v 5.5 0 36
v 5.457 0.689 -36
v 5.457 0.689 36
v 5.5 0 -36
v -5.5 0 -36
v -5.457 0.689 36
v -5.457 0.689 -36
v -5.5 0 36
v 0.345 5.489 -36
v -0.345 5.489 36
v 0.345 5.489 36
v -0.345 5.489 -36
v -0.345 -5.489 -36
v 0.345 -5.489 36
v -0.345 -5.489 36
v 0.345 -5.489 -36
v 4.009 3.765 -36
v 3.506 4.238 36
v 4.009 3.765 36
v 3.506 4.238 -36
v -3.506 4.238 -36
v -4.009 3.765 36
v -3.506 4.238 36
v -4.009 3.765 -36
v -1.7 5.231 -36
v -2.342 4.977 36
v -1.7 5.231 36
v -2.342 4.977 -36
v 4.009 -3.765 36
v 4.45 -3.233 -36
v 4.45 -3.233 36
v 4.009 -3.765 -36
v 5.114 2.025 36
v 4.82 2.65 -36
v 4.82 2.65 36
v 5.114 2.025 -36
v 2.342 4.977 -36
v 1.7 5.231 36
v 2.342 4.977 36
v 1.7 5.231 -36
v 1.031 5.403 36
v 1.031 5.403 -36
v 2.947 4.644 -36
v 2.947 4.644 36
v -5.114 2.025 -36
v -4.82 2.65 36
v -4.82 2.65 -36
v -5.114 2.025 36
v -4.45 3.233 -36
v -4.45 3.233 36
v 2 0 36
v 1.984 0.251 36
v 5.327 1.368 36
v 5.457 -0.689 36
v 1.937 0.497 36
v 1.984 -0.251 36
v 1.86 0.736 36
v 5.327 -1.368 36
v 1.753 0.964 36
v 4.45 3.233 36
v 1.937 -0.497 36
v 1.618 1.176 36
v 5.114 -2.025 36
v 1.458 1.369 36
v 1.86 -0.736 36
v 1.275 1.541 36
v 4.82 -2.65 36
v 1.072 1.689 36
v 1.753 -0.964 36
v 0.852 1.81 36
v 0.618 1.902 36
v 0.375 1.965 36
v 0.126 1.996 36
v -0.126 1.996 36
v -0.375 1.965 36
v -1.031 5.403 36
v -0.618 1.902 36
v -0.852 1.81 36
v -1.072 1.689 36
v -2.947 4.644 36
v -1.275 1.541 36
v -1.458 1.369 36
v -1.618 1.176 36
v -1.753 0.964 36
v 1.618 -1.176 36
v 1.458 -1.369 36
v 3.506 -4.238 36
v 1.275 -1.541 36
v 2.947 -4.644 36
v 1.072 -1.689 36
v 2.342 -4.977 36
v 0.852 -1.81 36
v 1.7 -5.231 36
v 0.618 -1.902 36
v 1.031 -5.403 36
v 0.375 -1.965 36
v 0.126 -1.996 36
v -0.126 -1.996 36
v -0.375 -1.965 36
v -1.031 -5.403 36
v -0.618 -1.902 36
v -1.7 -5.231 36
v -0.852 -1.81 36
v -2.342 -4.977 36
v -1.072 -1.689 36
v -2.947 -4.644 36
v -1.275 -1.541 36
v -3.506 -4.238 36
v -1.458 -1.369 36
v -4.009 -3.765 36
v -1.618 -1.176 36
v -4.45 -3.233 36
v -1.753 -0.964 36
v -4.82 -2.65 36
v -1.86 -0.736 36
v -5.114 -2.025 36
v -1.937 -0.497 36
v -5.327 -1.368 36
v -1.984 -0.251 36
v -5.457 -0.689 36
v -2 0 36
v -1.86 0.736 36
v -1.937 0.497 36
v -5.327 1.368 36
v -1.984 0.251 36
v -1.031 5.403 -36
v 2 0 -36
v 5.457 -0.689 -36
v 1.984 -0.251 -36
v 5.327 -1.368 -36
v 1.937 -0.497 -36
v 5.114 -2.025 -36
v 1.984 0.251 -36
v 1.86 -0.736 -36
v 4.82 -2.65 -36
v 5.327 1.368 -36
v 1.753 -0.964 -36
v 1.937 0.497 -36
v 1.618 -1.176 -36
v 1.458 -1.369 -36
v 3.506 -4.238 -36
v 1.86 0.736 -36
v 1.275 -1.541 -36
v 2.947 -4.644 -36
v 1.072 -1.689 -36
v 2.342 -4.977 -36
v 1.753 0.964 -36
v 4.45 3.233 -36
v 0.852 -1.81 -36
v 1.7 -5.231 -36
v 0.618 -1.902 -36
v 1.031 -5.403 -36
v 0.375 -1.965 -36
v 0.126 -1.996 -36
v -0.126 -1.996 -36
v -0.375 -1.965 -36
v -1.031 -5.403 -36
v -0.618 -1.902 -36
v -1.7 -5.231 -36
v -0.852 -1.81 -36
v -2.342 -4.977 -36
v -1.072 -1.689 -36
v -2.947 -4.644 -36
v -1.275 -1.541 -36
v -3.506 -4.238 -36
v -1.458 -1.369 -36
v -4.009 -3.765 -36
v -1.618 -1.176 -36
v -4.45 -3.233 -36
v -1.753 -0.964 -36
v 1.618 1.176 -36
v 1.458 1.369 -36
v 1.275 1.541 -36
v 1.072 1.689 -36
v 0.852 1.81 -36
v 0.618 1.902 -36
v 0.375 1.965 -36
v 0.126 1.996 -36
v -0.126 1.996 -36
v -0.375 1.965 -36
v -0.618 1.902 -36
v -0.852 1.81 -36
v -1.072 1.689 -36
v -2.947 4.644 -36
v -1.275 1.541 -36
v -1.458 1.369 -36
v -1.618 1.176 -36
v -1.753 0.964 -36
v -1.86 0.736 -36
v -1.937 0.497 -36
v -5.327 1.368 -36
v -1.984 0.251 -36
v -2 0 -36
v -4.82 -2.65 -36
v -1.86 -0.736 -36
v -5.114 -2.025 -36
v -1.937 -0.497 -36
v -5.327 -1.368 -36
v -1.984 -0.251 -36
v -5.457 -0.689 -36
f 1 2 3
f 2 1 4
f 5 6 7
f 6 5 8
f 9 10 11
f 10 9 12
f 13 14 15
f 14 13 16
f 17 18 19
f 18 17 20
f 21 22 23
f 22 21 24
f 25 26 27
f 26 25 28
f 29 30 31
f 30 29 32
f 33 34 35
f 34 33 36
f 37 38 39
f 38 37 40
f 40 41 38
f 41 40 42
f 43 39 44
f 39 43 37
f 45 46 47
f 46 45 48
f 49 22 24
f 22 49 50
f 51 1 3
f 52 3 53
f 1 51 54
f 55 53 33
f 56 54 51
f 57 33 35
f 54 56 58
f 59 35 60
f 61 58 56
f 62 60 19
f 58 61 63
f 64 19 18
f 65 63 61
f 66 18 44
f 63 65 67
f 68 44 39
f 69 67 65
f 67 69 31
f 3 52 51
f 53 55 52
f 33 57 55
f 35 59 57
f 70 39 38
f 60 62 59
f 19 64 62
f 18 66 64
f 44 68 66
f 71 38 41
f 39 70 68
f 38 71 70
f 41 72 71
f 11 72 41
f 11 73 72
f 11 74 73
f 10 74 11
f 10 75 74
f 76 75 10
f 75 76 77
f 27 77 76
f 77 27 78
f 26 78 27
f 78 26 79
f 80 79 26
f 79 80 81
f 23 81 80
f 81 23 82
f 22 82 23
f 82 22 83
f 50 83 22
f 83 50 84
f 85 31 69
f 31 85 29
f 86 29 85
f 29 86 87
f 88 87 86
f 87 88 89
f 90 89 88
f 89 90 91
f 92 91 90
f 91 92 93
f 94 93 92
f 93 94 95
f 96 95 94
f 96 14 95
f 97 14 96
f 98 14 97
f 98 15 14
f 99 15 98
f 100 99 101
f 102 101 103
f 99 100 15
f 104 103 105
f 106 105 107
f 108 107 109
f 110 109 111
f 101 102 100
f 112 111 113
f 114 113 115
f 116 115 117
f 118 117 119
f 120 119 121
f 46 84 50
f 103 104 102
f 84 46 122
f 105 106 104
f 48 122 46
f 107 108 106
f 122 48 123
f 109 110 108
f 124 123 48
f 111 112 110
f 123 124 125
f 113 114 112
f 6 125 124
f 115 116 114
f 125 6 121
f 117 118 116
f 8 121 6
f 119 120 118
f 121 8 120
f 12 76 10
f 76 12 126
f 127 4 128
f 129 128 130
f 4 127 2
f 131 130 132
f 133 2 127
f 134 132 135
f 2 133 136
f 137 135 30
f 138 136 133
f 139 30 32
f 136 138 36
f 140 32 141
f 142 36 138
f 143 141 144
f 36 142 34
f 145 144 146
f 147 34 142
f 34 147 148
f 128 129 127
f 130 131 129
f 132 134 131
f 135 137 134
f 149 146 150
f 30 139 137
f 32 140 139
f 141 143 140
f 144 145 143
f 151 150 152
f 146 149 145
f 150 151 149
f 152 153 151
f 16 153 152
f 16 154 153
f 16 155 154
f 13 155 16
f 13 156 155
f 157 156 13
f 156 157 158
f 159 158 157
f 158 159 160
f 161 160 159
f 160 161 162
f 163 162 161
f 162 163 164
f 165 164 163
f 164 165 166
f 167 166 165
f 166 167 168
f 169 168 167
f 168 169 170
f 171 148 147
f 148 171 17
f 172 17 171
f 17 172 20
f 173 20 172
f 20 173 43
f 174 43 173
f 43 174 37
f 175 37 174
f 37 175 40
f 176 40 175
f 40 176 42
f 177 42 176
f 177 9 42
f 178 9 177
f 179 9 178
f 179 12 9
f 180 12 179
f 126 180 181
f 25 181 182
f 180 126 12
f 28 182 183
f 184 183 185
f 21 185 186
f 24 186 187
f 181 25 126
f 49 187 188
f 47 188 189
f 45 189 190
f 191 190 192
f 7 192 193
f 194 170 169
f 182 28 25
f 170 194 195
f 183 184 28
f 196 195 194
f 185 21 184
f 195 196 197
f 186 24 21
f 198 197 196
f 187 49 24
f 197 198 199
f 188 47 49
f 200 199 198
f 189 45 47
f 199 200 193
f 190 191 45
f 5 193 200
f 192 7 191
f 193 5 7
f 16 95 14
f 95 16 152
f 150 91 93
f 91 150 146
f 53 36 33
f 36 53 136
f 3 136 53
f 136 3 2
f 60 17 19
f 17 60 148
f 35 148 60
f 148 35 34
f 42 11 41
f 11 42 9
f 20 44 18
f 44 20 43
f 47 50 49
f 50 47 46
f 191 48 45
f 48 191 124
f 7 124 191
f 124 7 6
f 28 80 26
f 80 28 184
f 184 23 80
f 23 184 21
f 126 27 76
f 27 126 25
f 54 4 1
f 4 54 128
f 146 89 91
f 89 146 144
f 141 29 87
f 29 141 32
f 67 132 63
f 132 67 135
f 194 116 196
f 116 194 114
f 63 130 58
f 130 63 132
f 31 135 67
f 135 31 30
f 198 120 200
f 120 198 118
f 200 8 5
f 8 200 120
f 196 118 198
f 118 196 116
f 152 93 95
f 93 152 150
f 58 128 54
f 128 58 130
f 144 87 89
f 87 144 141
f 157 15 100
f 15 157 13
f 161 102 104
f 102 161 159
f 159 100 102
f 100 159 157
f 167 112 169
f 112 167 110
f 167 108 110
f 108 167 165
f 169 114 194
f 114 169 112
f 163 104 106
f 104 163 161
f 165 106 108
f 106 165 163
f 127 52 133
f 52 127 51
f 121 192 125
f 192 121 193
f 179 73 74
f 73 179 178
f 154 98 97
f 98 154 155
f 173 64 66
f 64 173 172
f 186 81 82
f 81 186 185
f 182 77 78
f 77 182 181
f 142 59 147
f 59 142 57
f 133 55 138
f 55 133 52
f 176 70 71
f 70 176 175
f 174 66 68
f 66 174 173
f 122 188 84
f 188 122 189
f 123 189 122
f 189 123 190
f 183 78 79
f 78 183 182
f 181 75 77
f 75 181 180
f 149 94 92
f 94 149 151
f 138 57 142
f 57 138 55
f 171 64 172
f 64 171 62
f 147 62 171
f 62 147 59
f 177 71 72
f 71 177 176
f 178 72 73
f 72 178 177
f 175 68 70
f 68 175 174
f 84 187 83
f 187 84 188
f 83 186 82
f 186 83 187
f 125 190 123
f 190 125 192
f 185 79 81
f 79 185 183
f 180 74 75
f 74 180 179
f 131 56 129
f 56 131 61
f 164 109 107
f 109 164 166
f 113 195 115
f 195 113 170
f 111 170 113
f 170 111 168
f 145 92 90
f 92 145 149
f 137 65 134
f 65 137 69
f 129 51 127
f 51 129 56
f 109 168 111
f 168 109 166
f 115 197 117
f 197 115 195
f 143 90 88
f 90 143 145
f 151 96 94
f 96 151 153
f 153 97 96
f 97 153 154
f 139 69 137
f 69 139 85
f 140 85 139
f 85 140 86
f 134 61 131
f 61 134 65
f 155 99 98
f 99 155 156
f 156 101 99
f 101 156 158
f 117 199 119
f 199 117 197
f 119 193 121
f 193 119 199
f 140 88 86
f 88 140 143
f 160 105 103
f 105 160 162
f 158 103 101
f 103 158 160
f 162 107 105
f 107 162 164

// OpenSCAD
$fn = 50;


difference() {
	union() {
		translate(v = [0, 0, -36.0000000000]) {
			cylinder(h = 72, r = 5.5000000000);
		}
	}
	union() {
		translate(v = [0, 0, -100.0000000000]) {
			cylinder(h = 200, r = 2);
		}
	}
}
